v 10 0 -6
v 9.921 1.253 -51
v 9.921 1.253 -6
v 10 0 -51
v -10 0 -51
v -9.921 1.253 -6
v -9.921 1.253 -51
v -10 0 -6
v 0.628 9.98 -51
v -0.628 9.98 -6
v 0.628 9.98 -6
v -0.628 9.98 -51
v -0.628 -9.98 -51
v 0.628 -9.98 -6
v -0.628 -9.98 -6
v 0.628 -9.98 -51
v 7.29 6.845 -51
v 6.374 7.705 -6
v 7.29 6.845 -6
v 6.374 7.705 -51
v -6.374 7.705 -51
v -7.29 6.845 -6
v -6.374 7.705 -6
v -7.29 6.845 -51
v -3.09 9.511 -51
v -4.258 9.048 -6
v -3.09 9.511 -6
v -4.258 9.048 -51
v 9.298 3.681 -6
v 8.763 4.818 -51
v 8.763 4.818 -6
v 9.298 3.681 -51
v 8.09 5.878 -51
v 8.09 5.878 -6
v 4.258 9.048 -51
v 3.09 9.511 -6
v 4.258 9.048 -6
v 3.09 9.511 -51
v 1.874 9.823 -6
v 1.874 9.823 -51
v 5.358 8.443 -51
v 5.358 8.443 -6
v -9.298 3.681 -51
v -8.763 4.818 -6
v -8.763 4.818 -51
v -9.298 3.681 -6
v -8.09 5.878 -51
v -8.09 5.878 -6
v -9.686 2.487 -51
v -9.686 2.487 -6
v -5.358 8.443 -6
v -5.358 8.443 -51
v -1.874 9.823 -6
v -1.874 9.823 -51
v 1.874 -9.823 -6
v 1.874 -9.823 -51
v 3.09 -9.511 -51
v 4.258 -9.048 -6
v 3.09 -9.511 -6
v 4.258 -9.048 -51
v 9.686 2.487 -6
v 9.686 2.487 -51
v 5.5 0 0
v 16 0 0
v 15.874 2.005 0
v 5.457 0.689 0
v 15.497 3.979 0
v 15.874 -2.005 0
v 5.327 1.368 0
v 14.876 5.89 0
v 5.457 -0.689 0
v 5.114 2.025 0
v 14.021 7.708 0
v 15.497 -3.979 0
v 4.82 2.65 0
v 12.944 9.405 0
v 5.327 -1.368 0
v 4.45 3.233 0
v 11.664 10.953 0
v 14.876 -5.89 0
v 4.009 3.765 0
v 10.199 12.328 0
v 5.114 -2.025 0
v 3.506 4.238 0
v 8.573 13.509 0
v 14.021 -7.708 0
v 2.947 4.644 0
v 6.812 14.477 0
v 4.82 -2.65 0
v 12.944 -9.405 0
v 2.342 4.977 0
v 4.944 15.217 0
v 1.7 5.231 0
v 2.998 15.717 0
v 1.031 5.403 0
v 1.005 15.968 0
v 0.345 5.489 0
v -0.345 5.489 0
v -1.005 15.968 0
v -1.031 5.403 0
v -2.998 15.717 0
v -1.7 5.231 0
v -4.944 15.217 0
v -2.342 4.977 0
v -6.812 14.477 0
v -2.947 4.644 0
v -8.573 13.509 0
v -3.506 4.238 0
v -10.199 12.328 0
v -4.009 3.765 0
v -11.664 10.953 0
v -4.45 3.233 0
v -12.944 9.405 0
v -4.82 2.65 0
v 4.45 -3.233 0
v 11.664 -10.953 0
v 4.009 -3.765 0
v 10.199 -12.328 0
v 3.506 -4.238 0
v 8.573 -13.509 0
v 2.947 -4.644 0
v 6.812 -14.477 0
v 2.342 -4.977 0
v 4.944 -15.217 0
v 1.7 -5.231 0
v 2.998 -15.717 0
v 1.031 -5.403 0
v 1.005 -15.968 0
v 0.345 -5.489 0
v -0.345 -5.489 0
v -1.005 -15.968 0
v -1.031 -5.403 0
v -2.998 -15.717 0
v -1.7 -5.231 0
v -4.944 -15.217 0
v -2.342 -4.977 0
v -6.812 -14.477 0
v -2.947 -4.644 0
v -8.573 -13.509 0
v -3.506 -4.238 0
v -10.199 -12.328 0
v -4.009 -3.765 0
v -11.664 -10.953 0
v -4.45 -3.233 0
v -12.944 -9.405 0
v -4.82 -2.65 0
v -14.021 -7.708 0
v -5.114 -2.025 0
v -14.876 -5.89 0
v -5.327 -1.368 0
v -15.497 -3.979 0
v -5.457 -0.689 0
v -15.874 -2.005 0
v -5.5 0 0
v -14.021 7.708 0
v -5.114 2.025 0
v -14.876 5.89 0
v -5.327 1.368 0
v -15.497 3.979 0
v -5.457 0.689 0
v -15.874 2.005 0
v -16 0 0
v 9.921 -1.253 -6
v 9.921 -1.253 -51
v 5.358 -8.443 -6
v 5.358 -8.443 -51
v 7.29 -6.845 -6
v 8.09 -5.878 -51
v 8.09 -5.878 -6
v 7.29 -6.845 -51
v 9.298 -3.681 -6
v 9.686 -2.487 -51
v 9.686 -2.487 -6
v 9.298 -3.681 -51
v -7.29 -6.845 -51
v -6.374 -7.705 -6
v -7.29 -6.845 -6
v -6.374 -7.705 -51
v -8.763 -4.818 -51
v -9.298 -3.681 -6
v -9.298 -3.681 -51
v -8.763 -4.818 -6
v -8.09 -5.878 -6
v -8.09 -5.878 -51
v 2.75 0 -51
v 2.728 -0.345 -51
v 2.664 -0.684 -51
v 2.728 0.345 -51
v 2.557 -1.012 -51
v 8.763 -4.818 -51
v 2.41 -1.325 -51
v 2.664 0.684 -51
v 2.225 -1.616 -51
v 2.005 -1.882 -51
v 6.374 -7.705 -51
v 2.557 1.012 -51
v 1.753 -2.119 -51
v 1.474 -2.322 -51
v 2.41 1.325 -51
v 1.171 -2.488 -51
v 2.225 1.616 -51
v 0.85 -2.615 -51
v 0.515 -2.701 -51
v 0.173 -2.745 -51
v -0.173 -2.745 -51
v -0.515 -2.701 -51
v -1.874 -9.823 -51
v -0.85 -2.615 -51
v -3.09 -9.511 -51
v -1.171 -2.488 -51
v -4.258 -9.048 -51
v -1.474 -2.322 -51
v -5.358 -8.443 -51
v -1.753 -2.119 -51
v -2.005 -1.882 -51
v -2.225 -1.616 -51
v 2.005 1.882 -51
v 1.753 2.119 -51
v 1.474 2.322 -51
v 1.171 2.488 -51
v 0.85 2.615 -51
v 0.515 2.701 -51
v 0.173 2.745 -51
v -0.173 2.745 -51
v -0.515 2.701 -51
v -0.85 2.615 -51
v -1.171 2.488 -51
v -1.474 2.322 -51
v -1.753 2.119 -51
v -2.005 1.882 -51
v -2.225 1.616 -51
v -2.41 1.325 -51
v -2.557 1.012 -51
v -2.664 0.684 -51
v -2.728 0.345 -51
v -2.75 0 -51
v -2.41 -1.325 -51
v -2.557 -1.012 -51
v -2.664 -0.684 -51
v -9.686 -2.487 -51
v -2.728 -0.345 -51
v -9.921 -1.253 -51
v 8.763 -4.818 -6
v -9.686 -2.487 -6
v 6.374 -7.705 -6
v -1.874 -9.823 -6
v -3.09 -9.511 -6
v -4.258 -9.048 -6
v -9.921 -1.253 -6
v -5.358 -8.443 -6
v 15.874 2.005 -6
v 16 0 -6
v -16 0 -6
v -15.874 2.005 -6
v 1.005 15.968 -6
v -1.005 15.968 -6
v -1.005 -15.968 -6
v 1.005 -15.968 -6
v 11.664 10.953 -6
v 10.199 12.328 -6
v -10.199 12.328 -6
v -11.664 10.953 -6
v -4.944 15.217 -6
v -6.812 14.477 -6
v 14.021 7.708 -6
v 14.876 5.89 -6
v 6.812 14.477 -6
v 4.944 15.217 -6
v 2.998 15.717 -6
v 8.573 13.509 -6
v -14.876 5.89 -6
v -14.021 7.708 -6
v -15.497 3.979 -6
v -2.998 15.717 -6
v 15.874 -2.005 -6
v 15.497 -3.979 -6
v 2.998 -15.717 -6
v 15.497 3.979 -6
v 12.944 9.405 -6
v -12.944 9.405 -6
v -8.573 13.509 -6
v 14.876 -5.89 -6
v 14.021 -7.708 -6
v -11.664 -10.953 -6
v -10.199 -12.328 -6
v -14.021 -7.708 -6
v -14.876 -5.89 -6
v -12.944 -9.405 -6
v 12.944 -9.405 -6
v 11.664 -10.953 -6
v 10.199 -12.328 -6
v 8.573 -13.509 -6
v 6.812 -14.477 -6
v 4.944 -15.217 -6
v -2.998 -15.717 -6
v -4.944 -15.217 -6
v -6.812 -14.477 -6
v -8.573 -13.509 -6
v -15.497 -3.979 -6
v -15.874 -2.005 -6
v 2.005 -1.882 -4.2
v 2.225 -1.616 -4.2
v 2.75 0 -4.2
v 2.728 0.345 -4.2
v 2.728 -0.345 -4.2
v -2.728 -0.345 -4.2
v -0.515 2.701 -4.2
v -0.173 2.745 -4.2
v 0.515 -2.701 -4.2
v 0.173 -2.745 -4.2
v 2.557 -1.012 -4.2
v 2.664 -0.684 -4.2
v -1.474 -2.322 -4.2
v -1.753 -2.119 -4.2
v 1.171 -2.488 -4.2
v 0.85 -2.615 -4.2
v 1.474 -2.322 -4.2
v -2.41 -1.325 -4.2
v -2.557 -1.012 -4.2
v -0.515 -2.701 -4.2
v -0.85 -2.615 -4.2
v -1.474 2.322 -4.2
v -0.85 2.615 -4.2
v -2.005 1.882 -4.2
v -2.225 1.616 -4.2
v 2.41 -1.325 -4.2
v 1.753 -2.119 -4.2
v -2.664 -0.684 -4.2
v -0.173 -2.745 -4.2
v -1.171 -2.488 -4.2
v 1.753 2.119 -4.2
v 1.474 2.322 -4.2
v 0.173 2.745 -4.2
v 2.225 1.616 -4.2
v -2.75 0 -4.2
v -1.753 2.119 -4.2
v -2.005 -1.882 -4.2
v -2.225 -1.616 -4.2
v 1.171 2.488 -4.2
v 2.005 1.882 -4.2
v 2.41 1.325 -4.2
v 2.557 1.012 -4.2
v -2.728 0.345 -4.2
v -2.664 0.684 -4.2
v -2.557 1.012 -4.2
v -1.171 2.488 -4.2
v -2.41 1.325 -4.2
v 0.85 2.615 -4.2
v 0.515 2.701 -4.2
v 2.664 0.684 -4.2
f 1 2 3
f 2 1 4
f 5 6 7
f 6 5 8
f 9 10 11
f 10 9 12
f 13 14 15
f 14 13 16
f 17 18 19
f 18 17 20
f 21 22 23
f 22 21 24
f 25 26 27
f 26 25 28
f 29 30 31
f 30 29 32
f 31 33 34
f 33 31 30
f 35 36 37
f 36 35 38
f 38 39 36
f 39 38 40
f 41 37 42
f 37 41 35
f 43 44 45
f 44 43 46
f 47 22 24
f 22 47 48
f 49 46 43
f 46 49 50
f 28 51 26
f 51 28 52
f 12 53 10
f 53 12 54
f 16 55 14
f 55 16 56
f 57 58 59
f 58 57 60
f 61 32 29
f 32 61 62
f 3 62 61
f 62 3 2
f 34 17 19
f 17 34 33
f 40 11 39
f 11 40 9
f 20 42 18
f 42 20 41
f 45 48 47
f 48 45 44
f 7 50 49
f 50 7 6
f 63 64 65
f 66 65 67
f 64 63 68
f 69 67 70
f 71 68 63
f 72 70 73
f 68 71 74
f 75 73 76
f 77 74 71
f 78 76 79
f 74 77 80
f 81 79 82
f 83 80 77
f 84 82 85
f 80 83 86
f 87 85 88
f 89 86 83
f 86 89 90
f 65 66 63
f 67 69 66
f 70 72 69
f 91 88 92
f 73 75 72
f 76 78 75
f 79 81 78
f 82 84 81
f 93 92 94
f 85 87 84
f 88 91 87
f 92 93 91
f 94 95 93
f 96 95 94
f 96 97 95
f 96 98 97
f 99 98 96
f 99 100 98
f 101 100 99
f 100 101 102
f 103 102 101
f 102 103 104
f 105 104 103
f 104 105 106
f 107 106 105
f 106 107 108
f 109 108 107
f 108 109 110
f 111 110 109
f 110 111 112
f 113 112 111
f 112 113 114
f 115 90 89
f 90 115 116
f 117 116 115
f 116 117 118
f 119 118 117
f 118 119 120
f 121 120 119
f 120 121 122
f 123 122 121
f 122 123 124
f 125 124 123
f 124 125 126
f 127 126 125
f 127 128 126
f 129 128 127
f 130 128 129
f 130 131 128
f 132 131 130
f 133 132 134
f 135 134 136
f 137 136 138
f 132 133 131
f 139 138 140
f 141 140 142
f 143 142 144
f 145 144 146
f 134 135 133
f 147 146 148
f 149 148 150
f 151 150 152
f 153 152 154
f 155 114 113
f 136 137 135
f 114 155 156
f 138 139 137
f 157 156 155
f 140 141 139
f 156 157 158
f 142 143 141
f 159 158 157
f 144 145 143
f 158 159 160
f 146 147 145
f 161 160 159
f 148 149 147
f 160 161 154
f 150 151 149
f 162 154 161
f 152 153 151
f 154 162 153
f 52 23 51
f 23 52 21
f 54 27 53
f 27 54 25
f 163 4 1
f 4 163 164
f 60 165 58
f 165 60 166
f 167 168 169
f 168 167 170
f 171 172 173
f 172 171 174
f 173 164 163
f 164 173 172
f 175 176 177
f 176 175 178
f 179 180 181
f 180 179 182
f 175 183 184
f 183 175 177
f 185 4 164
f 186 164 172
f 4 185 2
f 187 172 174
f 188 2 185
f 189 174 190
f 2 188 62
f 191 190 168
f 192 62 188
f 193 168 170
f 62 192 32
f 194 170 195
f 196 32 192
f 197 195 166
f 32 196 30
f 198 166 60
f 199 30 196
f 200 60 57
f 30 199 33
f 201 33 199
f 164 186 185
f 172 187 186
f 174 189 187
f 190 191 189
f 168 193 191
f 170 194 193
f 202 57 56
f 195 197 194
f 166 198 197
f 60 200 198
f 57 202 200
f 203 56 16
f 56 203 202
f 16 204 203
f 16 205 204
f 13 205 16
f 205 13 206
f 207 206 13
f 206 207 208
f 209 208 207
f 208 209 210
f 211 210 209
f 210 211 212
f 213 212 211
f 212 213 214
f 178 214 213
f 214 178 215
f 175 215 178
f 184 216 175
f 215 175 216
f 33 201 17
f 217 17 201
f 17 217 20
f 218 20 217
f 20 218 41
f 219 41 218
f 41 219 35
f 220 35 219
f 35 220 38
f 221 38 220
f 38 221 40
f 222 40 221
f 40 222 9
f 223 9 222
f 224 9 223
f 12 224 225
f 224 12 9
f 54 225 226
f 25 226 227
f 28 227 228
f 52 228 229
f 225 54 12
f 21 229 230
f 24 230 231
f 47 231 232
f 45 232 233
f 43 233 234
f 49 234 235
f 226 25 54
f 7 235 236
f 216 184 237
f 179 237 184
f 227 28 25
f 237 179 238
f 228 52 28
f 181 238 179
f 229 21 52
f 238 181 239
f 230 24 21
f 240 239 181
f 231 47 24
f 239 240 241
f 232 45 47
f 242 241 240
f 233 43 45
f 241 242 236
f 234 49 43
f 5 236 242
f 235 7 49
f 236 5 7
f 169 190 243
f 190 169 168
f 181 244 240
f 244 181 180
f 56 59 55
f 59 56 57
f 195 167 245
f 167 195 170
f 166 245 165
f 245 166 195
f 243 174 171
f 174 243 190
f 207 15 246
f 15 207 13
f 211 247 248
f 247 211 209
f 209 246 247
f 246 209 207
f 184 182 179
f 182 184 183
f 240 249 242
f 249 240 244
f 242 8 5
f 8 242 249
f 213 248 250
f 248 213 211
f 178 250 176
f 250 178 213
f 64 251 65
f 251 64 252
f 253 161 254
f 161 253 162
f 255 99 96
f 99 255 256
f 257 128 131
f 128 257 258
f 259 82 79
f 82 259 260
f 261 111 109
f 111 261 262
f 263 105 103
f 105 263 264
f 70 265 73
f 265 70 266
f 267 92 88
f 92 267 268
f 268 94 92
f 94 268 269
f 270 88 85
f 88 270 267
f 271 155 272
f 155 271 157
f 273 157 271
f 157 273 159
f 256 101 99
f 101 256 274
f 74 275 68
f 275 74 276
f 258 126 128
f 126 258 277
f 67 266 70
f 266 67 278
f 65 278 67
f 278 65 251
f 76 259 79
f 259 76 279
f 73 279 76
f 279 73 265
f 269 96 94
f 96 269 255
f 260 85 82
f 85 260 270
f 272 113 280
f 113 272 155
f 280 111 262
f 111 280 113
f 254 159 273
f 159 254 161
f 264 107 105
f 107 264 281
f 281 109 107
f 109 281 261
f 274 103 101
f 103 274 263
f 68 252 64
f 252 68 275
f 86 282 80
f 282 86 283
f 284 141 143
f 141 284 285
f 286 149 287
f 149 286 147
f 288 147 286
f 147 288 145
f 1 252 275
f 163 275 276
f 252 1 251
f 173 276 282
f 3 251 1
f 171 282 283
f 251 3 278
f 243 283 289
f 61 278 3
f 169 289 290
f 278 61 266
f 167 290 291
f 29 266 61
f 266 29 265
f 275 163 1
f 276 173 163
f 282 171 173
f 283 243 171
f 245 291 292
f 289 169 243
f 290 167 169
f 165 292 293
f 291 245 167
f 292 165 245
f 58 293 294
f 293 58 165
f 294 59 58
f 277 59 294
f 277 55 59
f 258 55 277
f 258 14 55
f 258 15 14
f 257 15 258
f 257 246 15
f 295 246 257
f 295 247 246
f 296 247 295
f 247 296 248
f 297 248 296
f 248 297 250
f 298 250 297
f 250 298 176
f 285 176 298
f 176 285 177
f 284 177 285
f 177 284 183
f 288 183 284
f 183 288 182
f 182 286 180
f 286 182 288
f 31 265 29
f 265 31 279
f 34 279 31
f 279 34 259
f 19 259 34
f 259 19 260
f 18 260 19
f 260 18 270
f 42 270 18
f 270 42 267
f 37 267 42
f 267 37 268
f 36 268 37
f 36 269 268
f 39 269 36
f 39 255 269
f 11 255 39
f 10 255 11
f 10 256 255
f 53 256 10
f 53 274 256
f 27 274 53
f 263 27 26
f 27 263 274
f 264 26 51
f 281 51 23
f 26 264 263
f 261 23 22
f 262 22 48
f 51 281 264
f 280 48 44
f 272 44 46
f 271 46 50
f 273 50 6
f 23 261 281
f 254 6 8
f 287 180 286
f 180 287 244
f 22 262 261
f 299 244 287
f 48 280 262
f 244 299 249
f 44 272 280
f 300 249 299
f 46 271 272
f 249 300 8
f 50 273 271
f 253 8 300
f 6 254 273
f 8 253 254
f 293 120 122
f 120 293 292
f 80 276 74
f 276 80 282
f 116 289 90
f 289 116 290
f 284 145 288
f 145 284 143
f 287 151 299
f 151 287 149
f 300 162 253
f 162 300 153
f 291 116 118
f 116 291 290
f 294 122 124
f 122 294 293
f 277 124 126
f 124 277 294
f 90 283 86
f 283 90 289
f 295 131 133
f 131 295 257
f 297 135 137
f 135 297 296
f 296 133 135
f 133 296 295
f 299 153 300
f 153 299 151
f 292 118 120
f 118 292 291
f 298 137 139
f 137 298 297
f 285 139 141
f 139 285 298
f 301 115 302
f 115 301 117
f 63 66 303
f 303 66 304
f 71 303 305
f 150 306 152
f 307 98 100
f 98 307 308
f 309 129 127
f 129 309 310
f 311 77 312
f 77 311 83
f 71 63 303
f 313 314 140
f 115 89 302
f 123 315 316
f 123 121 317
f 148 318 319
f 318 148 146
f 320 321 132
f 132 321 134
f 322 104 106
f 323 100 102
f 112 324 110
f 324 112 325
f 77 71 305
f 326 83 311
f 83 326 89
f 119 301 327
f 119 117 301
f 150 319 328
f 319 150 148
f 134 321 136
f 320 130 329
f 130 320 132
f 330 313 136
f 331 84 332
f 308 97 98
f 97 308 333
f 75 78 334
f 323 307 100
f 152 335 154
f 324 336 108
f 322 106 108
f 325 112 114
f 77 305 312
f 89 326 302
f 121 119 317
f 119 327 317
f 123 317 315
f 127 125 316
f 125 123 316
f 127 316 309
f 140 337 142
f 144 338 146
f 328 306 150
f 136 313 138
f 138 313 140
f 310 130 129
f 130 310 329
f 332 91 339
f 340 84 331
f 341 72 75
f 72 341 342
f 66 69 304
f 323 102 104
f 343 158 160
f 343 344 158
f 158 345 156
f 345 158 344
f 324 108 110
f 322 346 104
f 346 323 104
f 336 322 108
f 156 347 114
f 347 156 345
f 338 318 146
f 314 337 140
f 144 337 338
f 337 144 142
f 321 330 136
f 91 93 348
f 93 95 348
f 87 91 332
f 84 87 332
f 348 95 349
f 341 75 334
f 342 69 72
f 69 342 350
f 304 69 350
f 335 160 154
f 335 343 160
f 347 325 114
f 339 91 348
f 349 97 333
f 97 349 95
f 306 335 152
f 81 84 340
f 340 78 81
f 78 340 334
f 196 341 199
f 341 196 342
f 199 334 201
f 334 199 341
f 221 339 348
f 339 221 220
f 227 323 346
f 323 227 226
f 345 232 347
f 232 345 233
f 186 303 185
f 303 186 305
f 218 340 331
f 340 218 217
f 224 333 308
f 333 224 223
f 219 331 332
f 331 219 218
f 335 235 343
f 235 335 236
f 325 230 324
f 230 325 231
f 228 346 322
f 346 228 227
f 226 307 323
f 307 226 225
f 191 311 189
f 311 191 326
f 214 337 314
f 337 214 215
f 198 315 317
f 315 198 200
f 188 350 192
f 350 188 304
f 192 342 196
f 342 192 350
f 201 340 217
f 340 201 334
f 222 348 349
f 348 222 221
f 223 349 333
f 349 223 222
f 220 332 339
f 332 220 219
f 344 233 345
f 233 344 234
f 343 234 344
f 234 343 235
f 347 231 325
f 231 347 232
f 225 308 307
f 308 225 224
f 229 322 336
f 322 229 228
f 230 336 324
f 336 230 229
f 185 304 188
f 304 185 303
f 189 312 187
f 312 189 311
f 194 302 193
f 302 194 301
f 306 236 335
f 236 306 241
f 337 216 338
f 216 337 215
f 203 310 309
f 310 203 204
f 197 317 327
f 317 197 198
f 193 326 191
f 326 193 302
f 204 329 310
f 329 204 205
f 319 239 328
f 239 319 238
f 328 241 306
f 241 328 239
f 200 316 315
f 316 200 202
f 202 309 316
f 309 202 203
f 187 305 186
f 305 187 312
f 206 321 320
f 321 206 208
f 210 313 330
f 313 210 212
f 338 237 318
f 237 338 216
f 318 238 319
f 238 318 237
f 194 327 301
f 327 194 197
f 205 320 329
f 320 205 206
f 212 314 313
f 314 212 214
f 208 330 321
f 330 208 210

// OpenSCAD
$fn = 50;


difference() {
	union() {
		translate(v = [0, 0, -51.0000000000]) {
			cylinder(h = 51, r = 10.0000000000);
		}
		translate(v = [0, 0, -6.0000000000]) {
			cylinder(h = 6, r = 16.0000000000);
		}
	}
	union() {
		translate(v = [0, 0, 0]) {
			rotate(a = [0, 0, 0]) {
				difference() {
					union() {
						#translate(v = [0, 0, -51.0000000000]) {
							cylinder(h = 51, r = 2.2500000000);
						}
						#translate(v = [0, 0, -4.2000000000]) {
							cylinder(h = 4.2000000000, r1 = 2.7500000000, r2 = 5.5000000000);
						}
						#translate(v = [0, 0, -51.0000000000]) {
							cylinder(h = 51, r = 2.7500000000);
						}
						#translate(v = [0, 0, -51.0000000000]) {
							cylinder(h = 51, r = 2.2500000000);
						}
					}
					union();
				}
			}
		}
	}
}
